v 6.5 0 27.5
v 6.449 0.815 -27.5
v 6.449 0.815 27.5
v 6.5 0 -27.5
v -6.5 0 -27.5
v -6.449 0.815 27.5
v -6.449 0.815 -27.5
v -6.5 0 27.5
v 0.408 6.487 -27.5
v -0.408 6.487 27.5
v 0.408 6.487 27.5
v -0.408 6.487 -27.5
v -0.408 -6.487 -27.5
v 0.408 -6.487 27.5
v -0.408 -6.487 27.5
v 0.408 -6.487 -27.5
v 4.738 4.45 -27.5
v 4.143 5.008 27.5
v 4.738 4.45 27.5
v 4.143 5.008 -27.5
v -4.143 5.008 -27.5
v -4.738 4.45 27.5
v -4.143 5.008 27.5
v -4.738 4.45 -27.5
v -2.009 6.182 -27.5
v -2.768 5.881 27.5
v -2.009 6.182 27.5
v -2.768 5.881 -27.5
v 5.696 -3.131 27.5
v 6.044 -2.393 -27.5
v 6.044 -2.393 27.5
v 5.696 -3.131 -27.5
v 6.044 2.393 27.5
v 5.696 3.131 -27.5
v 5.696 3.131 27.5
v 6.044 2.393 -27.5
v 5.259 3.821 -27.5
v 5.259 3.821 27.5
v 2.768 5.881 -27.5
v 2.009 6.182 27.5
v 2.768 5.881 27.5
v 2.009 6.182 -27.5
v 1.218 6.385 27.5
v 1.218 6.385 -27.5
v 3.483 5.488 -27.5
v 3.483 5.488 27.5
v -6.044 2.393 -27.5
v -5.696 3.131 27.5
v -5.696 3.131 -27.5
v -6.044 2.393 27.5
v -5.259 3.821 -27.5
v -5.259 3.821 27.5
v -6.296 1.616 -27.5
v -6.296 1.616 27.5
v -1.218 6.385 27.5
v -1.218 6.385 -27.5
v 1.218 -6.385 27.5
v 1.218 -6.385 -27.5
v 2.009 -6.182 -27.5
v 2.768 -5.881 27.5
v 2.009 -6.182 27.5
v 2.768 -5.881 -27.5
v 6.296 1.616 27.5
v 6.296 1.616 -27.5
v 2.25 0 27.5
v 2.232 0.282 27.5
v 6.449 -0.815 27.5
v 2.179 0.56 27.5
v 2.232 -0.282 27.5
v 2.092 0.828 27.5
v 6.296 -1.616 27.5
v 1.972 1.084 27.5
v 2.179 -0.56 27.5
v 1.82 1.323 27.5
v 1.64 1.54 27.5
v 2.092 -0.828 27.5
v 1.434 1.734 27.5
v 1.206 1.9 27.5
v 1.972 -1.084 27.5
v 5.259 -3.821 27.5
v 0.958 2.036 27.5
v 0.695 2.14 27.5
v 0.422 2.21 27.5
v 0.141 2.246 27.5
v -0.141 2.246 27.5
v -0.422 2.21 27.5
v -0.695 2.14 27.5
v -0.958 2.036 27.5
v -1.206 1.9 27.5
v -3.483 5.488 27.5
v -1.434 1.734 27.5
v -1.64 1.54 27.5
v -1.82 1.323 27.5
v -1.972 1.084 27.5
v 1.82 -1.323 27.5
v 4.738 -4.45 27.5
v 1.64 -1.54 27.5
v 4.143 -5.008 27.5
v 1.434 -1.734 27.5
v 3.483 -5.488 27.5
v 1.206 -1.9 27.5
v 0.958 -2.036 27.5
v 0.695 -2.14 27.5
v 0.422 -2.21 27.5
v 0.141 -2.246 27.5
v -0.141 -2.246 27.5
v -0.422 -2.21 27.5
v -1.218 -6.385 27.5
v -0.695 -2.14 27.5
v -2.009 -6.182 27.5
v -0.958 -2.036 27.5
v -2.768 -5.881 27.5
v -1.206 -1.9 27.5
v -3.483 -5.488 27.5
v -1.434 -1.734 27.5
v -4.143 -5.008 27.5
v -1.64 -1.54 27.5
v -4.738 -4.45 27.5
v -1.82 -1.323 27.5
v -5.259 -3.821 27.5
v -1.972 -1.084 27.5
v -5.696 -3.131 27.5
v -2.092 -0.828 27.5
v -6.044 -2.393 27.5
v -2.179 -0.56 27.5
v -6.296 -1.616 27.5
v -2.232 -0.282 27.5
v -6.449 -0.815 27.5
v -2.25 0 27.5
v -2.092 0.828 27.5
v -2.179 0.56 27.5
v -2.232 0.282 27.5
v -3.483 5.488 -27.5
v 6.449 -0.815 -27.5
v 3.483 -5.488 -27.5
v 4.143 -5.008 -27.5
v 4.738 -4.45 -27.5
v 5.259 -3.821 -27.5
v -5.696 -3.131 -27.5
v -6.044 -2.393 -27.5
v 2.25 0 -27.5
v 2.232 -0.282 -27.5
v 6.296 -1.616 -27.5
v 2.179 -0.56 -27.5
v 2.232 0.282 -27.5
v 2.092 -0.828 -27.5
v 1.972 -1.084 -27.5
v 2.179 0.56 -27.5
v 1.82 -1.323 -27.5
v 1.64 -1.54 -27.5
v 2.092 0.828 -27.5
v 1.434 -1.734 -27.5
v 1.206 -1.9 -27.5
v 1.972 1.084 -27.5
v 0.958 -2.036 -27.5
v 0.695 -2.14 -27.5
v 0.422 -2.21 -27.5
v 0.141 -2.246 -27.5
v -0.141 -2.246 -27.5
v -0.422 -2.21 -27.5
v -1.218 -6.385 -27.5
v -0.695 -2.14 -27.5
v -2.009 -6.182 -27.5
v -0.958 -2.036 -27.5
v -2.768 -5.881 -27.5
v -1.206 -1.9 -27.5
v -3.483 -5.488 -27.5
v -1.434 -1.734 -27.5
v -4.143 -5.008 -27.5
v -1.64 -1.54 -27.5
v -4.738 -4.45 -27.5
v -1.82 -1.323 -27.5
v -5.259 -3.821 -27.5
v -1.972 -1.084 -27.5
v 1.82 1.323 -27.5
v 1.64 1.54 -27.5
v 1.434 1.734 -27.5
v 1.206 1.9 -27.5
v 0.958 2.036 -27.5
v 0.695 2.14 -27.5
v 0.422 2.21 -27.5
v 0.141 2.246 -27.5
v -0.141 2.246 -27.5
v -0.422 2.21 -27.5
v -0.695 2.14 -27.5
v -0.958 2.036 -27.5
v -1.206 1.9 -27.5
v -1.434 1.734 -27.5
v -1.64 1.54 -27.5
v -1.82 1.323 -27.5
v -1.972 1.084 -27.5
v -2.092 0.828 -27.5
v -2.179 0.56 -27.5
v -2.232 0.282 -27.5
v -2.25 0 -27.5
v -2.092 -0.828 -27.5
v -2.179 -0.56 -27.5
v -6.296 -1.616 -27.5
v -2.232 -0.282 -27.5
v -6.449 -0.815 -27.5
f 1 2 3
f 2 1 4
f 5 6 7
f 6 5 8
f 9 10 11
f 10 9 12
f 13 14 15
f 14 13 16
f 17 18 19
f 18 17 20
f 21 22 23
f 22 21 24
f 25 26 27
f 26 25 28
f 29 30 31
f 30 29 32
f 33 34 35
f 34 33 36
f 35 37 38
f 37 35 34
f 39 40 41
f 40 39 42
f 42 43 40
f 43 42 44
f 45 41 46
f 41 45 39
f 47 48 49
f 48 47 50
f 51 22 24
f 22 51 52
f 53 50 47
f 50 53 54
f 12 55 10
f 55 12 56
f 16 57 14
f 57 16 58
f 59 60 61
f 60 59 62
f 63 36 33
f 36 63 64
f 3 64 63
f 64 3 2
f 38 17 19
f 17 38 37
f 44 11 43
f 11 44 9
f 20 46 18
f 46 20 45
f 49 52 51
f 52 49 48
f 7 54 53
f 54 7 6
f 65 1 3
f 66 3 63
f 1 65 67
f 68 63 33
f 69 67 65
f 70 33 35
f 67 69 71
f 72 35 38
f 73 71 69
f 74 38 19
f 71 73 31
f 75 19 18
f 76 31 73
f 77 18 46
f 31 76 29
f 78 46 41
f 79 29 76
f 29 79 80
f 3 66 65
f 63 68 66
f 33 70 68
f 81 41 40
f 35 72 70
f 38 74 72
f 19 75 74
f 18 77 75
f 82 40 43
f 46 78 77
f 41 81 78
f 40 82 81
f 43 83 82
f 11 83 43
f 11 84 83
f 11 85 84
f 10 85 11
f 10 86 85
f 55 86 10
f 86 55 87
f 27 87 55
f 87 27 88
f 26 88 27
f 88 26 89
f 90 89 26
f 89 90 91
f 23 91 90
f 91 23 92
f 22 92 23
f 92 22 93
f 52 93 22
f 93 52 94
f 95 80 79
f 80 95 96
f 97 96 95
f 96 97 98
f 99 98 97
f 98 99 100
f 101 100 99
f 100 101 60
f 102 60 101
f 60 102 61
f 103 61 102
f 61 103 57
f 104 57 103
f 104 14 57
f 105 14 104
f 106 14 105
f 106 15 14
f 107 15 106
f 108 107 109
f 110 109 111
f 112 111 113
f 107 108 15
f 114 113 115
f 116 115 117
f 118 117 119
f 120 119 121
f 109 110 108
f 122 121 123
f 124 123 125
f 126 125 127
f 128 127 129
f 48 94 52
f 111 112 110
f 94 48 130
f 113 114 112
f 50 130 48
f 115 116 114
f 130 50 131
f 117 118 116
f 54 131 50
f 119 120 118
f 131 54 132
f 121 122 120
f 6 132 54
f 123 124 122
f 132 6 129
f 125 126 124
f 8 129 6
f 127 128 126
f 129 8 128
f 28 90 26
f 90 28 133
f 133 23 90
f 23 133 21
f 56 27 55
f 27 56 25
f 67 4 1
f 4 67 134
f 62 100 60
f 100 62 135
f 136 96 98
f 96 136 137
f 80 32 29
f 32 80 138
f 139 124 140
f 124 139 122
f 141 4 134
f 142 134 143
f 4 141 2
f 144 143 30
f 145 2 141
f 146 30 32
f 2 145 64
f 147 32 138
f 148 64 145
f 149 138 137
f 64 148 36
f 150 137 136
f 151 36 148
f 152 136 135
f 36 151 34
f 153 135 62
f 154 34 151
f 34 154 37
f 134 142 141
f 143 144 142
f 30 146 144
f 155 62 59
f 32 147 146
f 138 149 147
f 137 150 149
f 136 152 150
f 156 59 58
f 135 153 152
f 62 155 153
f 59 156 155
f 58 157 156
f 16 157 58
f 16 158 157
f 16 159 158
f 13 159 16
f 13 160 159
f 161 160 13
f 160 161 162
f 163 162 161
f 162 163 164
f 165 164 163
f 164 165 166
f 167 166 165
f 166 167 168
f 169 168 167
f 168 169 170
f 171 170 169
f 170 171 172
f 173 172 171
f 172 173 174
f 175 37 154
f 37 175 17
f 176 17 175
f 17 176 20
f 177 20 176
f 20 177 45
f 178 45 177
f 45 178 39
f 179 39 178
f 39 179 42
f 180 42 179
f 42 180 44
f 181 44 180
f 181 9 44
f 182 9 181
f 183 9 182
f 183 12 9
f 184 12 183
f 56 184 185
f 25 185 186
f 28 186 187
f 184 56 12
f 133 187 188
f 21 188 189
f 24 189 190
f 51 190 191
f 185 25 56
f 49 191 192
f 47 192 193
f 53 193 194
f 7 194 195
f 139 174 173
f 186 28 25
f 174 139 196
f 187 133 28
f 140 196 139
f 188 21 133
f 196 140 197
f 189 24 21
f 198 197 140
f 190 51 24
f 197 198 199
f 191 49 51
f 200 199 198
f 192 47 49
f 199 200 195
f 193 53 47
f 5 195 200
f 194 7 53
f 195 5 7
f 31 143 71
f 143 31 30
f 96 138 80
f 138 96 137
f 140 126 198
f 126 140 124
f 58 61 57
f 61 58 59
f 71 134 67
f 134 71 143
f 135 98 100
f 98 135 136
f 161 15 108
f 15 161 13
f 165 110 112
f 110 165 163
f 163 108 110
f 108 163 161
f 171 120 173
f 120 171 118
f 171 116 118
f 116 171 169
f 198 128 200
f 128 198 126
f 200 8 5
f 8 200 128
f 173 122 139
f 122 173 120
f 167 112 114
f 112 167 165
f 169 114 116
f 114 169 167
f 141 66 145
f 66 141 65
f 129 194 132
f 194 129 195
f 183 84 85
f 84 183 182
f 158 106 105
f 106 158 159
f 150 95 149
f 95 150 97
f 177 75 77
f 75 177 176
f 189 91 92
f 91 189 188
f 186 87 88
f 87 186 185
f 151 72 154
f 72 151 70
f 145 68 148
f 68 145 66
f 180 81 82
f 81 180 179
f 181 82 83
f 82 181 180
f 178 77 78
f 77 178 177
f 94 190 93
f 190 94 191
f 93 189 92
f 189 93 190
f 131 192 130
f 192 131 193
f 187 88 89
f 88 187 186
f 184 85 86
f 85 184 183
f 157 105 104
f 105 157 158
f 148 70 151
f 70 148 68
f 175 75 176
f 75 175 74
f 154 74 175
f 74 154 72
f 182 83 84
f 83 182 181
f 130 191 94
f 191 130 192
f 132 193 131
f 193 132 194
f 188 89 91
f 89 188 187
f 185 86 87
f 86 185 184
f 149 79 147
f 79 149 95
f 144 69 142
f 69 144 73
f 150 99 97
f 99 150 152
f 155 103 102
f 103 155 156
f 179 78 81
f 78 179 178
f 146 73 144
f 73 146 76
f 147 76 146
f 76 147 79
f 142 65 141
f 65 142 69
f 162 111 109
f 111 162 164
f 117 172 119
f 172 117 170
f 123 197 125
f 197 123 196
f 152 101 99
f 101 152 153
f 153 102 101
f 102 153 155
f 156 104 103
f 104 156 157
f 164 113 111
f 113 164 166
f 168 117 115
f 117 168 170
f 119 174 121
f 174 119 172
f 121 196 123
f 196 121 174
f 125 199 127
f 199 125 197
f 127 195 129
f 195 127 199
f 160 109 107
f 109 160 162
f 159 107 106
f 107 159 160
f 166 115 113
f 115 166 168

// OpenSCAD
$fn = 50;


difference() {
	union() {
		translate(v = [0, 0, -27.5000000000]) {
			cylinder(h = 55, r = 6.5000000000);
		}
	}
	union() {
		translate(v = [0, 0, -100.0000000000]) {
			cylinder(h = 200, r = 2.2500000000);
		}
	}
}
